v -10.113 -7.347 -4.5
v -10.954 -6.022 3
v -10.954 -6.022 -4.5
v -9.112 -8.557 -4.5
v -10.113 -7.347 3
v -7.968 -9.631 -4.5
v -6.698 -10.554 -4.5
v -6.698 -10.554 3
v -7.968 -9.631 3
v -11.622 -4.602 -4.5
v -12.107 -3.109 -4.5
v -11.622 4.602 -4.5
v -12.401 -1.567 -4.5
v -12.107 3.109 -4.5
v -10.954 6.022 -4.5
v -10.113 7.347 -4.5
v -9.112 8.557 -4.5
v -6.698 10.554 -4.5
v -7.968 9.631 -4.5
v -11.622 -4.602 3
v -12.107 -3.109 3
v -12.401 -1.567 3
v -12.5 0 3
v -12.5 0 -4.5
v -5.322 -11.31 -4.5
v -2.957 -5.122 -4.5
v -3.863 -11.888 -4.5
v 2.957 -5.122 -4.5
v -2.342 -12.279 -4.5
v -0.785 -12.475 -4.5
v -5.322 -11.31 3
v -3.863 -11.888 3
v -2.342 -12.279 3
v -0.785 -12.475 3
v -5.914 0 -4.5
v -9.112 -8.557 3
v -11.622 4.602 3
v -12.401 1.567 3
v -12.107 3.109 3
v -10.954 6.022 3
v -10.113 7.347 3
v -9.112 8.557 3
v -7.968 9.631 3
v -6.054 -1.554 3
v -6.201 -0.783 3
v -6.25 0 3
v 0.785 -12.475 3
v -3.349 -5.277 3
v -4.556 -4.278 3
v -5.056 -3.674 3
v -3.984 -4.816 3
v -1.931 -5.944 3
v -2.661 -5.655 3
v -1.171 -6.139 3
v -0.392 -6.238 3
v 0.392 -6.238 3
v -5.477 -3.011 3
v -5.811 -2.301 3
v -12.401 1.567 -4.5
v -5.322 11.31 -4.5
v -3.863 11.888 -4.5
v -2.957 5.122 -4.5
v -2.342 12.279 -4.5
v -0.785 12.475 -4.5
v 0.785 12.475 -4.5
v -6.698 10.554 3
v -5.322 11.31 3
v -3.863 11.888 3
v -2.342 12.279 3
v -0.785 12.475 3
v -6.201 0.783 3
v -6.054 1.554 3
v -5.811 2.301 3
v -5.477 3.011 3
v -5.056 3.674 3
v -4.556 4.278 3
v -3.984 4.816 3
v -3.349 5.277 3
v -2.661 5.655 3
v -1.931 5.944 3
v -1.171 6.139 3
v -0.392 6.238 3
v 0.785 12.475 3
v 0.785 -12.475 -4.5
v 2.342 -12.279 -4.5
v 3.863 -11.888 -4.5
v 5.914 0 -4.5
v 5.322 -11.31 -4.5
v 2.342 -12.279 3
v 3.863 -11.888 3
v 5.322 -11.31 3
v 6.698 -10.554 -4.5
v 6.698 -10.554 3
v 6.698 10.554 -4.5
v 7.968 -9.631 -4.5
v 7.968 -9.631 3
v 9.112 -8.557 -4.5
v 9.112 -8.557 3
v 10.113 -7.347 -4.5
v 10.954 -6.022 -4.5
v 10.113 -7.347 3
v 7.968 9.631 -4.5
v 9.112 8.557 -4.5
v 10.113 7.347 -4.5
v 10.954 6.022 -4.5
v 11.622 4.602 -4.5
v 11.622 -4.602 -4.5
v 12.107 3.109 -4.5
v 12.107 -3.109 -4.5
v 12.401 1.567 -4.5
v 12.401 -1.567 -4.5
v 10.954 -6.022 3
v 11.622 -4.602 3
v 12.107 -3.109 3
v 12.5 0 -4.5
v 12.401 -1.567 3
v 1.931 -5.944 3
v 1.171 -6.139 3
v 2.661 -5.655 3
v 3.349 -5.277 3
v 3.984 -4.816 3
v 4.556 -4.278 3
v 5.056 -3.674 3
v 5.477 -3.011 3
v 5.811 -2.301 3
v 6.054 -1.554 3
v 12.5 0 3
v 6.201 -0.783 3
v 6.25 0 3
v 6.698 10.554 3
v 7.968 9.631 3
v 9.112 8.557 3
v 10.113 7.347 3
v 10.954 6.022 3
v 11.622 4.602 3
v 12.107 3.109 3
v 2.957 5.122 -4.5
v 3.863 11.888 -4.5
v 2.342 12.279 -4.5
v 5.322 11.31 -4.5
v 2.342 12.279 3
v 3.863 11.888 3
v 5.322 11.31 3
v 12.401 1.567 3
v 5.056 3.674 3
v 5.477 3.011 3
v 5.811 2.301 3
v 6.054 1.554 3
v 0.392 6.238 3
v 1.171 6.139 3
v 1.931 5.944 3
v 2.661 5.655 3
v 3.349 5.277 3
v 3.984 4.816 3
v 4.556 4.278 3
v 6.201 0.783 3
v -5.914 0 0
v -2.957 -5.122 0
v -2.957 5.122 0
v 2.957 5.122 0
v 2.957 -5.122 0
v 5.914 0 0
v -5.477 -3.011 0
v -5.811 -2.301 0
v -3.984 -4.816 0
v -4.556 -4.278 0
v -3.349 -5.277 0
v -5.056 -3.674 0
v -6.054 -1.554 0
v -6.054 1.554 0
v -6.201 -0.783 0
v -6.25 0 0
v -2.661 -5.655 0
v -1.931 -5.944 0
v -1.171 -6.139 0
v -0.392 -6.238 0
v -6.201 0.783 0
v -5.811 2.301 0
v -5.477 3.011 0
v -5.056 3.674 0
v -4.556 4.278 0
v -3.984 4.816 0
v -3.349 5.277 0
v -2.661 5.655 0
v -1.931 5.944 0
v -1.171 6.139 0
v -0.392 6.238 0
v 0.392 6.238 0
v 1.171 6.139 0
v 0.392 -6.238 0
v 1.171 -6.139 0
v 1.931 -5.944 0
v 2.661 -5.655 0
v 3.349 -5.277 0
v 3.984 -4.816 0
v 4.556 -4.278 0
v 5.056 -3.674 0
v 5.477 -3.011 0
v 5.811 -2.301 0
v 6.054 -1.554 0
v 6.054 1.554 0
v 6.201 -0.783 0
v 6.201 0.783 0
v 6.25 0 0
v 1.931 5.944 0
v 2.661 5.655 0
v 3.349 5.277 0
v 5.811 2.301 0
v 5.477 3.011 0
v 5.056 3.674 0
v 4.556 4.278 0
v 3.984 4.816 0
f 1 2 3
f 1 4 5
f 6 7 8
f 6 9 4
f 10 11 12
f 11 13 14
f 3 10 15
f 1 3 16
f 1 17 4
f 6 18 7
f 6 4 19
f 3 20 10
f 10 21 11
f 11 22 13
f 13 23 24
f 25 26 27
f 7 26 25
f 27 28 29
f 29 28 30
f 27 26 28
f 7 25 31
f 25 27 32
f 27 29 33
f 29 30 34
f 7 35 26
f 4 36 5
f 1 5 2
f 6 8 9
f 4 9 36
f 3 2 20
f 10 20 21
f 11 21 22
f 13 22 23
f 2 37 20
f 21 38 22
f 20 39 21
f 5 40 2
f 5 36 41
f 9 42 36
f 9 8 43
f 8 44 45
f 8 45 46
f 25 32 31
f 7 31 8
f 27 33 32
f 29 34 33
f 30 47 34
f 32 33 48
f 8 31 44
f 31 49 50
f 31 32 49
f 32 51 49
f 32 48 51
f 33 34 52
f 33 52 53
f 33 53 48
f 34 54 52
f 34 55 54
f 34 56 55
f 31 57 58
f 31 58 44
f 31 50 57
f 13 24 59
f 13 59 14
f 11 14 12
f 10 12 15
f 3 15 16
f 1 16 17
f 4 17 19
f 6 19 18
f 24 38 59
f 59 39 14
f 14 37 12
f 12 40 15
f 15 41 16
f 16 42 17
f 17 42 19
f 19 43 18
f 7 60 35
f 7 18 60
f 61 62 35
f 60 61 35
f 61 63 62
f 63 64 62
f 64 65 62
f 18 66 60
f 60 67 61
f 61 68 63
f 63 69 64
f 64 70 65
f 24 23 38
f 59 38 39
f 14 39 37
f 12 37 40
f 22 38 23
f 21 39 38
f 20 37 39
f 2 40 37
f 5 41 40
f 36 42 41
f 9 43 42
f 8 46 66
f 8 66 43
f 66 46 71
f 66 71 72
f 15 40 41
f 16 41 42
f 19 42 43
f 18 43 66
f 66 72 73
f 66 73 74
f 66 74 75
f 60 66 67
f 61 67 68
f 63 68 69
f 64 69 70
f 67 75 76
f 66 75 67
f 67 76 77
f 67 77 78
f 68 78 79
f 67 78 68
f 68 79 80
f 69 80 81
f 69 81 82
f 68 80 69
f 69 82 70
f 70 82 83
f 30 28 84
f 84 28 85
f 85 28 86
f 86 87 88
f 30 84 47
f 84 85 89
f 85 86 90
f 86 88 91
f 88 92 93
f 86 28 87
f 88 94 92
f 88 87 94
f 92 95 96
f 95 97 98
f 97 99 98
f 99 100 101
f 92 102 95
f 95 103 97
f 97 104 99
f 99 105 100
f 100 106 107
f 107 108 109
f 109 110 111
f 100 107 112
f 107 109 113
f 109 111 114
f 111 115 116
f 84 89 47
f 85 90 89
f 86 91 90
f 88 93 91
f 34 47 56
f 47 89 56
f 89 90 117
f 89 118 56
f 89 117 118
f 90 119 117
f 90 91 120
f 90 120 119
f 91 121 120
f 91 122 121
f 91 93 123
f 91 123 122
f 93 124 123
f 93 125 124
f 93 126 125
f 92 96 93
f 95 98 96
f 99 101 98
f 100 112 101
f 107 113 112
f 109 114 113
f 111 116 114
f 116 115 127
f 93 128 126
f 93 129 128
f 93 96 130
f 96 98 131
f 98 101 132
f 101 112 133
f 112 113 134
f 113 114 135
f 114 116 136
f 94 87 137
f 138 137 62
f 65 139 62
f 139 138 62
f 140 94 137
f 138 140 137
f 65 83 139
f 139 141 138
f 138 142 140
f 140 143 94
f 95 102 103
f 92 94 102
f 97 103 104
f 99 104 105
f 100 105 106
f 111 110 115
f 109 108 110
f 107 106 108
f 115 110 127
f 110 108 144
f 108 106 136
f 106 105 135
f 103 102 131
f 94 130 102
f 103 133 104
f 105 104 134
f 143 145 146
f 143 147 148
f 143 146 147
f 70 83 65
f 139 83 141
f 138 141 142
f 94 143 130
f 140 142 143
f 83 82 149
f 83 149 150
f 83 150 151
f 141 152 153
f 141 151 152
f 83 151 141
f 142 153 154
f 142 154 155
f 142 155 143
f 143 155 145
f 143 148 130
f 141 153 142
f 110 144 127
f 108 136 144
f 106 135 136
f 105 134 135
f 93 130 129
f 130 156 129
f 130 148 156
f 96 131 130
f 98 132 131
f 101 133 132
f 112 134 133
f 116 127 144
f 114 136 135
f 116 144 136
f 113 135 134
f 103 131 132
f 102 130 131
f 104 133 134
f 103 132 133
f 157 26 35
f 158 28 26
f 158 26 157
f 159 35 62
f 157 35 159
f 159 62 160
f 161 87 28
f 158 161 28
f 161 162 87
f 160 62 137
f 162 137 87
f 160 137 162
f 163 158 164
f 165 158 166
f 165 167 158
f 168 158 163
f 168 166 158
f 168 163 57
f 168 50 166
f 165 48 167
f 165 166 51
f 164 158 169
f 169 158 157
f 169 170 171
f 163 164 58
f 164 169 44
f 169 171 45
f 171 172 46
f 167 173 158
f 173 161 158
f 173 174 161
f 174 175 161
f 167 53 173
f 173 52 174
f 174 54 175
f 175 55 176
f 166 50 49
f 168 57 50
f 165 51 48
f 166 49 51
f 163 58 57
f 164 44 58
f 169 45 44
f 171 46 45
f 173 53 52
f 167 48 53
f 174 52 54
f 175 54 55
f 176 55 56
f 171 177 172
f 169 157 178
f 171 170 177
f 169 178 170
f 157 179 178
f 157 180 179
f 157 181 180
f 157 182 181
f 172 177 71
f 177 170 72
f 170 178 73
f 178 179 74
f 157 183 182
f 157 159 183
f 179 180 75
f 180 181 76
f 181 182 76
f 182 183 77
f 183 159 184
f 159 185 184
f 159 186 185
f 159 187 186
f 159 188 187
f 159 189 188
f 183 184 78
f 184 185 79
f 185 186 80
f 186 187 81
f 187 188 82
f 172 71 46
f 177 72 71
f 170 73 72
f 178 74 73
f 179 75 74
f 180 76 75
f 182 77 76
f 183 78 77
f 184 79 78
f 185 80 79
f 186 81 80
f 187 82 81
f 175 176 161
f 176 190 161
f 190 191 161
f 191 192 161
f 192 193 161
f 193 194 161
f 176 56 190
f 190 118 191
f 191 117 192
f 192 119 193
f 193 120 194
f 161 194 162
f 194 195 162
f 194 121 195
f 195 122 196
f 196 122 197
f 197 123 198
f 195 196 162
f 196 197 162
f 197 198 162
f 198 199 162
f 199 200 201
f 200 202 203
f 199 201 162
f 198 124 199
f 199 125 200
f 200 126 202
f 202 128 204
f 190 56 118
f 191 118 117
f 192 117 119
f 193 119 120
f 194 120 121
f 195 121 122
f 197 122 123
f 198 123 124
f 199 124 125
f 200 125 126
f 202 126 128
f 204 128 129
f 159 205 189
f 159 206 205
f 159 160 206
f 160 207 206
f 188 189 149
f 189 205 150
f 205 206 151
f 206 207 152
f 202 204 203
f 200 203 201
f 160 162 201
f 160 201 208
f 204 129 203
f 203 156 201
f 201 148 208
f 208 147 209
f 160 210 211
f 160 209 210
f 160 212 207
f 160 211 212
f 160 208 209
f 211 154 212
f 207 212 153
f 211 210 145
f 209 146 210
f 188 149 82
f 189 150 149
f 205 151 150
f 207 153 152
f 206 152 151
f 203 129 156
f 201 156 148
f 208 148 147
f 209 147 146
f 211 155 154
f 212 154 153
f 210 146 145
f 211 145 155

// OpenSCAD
$fn = 50;

difference() {
	union() {
		translate(v = [0, 0, -4.5]) {
			cylinder(h = 7.5, r = 12.5);
		}
		#translate(v = [0, 0, -6.0]) {
			cylinder(h = 6, r = 2.875);
		}
	}
	union() {
		translate(v = [0, 0, 0]) {
			rotate(a = [0, 0, 0]) {
				difference() {
					union() {
						translate(v = [0, 0, -5]) {
							linear_extrude(height = 5) {
								polygon(points = [[5.914249999999999, 0.0], [2.957125, 5.1218907443321156], [-2.9571249999999982, 5.1218907443321156], [-5.914249999999999, 7.242867331857232e-16], [-2.9571250000000022, -5.121890744332115], [2.9571249999999956, -5.121890744332118]]);
							}
						}
					}
					union();
				}
			}
		}
		#cylinder(h = 3, r = 6.25);
		#translate(v = [0, 0, -100.0]) {
			cylinder(h = 200, r = 3.25);
		}
	}
}
